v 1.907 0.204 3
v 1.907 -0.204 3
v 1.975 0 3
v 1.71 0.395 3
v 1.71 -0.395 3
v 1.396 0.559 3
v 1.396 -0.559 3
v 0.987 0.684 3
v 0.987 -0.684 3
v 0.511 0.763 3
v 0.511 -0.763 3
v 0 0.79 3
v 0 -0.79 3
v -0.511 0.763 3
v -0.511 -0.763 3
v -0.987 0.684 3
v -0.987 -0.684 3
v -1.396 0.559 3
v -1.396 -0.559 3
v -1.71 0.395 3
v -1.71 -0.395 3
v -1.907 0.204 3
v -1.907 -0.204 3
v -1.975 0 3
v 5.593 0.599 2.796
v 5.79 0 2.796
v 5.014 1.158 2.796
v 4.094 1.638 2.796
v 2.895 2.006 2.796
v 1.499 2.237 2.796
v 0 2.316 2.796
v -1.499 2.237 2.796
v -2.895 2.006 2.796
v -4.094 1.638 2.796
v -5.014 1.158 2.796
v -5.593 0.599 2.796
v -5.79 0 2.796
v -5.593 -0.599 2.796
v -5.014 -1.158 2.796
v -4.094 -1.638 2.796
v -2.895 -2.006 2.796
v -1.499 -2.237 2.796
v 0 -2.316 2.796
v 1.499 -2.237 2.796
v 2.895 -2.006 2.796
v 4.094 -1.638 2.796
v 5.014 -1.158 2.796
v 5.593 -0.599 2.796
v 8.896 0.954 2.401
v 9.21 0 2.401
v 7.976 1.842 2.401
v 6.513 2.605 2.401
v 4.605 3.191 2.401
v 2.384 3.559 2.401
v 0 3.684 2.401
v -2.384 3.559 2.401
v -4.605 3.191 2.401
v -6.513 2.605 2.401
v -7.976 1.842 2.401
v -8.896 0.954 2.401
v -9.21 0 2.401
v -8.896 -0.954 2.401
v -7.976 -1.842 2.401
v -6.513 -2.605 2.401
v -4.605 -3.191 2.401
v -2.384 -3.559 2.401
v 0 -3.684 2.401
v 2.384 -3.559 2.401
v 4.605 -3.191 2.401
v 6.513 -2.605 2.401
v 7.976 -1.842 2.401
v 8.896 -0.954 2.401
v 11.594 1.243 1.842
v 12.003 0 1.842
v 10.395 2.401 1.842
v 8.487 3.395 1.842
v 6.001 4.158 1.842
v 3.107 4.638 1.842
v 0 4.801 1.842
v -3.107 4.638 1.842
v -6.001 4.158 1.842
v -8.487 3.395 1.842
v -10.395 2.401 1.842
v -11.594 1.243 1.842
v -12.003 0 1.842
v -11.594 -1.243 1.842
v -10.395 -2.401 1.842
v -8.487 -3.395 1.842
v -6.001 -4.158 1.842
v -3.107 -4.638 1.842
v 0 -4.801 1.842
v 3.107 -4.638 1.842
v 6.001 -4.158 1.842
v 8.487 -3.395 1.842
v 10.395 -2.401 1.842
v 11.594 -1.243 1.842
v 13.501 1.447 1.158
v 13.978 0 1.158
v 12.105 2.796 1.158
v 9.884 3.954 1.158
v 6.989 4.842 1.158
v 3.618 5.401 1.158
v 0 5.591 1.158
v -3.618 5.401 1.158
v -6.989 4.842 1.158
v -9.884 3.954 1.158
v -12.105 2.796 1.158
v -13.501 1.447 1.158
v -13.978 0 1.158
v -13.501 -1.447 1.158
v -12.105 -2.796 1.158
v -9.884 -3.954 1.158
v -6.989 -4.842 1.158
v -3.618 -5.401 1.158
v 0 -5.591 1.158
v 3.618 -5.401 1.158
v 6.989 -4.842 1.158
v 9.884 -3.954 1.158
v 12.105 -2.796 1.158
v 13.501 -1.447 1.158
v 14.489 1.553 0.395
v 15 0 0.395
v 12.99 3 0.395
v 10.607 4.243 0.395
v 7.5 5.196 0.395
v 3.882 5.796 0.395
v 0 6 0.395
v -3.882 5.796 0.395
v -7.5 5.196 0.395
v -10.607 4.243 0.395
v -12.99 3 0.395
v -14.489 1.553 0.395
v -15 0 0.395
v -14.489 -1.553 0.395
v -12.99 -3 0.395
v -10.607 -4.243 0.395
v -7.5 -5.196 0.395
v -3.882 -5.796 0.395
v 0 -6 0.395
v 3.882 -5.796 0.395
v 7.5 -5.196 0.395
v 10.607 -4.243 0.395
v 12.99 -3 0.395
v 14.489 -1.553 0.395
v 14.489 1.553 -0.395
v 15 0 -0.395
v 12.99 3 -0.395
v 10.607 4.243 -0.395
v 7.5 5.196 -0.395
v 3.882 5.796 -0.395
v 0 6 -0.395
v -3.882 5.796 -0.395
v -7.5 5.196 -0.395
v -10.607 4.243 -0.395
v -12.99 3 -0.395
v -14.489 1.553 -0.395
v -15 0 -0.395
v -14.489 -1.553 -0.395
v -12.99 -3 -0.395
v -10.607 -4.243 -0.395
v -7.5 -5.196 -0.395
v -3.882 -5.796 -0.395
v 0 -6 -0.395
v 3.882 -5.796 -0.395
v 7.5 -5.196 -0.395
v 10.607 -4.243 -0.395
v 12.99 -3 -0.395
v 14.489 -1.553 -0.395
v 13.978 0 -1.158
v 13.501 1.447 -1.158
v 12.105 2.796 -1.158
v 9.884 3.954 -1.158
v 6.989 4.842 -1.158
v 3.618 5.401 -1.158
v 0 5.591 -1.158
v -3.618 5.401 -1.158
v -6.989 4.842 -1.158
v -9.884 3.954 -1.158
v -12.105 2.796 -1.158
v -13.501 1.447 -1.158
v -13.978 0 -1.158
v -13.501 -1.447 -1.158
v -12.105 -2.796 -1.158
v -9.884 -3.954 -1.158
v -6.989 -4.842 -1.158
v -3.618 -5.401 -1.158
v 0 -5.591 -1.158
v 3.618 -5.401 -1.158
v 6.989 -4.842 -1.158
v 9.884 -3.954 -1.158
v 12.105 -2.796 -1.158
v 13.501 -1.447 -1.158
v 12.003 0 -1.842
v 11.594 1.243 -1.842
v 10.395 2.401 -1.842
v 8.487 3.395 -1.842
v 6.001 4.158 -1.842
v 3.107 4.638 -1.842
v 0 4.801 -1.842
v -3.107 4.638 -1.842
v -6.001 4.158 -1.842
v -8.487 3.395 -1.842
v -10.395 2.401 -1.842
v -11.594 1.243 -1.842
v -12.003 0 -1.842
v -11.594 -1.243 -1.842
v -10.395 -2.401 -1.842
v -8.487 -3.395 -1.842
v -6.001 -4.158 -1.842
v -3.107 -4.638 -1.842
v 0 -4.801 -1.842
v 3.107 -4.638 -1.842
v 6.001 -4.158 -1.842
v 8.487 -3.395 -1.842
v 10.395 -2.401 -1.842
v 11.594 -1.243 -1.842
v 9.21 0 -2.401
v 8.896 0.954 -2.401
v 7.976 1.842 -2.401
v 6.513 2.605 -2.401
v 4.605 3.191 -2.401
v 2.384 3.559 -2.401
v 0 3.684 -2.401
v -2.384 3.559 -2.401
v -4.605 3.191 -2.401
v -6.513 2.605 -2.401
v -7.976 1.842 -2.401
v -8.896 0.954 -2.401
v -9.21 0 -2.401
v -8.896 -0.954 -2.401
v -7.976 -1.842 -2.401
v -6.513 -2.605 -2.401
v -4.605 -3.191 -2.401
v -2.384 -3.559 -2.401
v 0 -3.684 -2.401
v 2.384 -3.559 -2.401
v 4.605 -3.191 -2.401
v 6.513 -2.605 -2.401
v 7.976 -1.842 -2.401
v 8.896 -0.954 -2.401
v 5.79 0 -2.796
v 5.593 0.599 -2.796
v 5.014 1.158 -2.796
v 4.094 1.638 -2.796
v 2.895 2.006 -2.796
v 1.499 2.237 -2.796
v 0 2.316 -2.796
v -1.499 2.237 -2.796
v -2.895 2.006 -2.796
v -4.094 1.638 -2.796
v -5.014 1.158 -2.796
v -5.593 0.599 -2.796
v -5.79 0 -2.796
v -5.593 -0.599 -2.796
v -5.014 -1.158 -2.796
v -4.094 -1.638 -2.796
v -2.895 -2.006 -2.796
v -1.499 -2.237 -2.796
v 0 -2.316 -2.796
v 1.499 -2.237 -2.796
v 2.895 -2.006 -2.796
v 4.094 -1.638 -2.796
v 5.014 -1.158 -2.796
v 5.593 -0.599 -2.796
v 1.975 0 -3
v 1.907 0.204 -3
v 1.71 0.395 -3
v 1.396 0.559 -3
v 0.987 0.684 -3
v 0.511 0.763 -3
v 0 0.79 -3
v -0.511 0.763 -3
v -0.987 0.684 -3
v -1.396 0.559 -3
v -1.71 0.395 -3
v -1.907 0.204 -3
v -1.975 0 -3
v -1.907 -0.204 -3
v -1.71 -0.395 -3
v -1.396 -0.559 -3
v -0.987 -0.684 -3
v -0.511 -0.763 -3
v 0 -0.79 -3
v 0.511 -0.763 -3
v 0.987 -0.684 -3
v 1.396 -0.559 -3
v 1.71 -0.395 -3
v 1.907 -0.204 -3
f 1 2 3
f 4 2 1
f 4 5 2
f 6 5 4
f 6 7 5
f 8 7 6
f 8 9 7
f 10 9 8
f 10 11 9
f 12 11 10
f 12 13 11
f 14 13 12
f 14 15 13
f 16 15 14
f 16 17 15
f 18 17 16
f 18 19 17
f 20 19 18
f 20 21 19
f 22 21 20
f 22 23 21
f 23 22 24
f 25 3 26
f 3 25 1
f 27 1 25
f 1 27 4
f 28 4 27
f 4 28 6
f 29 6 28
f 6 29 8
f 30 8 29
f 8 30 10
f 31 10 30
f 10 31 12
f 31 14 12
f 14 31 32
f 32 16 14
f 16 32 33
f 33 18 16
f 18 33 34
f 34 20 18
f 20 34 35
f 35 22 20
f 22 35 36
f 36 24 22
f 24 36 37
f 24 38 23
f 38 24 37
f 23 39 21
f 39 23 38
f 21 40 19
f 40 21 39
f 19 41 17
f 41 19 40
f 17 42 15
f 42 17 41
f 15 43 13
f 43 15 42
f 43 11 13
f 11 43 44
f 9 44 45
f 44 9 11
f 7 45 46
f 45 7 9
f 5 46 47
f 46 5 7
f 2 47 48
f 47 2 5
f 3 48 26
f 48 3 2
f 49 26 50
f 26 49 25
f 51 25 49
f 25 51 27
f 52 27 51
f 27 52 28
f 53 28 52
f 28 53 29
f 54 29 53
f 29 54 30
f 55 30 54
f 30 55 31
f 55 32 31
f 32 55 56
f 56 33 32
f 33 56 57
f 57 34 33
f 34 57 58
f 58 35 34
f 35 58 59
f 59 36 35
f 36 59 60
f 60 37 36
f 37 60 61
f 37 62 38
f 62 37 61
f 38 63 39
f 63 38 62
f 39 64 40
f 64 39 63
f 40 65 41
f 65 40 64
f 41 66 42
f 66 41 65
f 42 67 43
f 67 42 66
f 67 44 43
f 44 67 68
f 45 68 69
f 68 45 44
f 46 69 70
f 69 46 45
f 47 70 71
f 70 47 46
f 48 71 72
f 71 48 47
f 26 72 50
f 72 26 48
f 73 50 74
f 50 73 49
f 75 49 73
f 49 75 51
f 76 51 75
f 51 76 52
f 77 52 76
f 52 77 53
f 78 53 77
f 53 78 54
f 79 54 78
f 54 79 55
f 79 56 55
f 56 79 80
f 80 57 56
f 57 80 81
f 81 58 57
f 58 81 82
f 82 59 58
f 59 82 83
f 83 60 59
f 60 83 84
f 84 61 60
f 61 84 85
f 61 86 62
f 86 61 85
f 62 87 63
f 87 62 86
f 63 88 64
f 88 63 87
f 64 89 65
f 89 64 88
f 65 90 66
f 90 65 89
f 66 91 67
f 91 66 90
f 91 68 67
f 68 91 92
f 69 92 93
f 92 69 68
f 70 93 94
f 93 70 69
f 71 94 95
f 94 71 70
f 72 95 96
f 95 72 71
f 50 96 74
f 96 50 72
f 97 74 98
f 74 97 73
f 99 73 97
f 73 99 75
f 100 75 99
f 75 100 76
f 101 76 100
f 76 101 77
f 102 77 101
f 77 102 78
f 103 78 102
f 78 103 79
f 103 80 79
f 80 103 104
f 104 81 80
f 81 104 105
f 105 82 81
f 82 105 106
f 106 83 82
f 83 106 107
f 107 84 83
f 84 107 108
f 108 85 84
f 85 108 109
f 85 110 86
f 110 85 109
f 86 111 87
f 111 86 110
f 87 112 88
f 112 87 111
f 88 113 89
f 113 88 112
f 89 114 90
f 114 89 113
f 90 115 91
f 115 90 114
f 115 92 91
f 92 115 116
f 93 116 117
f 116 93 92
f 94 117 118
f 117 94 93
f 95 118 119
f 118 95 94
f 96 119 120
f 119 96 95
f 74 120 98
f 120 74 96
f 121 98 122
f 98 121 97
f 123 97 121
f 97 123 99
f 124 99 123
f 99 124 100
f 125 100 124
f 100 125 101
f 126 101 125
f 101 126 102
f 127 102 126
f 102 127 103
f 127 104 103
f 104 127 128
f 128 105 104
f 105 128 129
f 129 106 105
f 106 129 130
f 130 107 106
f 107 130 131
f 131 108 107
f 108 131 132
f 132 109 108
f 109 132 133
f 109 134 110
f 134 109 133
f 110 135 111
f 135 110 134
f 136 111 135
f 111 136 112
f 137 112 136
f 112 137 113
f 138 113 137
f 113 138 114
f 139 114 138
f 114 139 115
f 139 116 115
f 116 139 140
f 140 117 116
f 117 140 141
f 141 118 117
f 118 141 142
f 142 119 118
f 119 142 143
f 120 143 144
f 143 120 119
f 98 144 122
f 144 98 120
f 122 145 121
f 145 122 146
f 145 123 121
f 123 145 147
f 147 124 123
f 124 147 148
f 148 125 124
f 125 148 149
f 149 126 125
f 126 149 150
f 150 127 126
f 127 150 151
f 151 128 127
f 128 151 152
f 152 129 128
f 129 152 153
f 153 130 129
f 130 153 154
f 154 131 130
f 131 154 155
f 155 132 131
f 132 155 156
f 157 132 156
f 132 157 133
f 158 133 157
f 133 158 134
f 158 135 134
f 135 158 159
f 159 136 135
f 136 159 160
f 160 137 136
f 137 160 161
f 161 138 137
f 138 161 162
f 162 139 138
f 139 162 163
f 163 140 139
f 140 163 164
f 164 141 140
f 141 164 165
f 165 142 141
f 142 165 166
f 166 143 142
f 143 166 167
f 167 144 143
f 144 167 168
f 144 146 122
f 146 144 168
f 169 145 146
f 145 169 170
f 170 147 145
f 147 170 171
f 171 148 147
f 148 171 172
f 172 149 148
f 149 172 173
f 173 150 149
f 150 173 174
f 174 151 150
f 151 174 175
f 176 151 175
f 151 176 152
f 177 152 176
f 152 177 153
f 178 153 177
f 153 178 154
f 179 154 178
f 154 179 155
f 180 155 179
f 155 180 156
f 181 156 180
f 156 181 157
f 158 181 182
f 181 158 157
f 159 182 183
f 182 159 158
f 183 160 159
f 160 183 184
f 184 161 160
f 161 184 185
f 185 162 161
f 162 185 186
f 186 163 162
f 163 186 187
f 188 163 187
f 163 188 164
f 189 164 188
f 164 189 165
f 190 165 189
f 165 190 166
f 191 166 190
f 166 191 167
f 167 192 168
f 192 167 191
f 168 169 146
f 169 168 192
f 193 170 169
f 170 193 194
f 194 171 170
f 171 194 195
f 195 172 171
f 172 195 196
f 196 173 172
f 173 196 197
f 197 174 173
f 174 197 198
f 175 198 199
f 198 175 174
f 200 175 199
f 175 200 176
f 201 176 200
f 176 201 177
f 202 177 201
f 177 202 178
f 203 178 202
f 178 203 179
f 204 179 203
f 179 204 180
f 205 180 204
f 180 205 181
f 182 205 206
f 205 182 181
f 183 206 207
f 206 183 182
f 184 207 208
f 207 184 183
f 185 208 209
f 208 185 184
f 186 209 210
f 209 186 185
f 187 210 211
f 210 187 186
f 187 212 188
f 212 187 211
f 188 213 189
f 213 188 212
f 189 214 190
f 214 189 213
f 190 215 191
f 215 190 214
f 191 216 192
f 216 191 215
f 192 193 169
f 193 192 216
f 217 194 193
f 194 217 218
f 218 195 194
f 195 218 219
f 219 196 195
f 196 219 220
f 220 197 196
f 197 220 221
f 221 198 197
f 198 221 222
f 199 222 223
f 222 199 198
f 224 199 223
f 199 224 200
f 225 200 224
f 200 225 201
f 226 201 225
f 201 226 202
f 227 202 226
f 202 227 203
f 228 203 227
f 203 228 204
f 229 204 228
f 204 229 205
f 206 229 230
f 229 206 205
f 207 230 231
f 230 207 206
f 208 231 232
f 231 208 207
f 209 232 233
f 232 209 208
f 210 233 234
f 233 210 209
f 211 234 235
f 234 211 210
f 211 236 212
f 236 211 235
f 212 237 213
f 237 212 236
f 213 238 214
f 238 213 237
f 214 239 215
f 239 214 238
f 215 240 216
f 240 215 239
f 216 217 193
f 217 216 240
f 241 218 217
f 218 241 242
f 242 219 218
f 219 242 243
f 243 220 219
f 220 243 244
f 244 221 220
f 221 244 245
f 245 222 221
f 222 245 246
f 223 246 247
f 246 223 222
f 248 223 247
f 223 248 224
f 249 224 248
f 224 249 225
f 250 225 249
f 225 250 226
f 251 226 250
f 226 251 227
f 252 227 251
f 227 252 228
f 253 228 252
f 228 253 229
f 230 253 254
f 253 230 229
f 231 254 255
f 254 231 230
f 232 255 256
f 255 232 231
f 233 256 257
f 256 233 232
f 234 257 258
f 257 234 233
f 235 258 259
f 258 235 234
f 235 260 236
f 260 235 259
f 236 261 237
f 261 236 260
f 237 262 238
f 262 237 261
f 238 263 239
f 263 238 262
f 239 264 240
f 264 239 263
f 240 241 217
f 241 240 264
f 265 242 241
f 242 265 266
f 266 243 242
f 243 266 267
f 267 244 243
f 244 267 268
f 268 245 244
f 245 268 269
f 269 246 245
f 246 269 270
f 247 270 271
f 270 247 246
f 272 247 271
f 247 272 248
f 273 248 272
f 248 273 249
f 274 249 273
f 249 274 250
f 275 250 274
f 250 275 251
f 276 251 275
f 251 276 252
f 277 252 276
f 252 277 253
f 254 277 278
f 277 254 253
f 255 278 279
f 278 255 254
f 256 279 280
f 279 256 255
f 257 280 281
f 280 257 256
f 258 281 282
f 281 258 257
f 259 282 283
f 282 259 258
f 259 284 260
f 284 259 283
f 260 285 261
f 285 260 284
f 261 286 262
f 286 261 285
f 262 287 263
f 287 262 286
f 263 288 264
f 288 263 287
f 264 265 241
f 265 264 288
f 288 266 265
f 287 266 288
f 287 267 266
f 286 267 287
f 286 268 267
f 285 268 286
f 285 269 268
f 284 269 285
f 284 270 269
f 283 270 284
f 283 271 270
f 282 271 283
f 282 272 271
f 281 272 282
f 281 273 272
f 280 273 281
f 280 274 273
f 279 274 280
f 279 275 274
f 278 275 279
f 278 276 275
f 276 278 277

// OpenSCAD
// resize() to an exact bounding box.
$fn = 24;
resize([30, 12, 6]) sphere(10);
